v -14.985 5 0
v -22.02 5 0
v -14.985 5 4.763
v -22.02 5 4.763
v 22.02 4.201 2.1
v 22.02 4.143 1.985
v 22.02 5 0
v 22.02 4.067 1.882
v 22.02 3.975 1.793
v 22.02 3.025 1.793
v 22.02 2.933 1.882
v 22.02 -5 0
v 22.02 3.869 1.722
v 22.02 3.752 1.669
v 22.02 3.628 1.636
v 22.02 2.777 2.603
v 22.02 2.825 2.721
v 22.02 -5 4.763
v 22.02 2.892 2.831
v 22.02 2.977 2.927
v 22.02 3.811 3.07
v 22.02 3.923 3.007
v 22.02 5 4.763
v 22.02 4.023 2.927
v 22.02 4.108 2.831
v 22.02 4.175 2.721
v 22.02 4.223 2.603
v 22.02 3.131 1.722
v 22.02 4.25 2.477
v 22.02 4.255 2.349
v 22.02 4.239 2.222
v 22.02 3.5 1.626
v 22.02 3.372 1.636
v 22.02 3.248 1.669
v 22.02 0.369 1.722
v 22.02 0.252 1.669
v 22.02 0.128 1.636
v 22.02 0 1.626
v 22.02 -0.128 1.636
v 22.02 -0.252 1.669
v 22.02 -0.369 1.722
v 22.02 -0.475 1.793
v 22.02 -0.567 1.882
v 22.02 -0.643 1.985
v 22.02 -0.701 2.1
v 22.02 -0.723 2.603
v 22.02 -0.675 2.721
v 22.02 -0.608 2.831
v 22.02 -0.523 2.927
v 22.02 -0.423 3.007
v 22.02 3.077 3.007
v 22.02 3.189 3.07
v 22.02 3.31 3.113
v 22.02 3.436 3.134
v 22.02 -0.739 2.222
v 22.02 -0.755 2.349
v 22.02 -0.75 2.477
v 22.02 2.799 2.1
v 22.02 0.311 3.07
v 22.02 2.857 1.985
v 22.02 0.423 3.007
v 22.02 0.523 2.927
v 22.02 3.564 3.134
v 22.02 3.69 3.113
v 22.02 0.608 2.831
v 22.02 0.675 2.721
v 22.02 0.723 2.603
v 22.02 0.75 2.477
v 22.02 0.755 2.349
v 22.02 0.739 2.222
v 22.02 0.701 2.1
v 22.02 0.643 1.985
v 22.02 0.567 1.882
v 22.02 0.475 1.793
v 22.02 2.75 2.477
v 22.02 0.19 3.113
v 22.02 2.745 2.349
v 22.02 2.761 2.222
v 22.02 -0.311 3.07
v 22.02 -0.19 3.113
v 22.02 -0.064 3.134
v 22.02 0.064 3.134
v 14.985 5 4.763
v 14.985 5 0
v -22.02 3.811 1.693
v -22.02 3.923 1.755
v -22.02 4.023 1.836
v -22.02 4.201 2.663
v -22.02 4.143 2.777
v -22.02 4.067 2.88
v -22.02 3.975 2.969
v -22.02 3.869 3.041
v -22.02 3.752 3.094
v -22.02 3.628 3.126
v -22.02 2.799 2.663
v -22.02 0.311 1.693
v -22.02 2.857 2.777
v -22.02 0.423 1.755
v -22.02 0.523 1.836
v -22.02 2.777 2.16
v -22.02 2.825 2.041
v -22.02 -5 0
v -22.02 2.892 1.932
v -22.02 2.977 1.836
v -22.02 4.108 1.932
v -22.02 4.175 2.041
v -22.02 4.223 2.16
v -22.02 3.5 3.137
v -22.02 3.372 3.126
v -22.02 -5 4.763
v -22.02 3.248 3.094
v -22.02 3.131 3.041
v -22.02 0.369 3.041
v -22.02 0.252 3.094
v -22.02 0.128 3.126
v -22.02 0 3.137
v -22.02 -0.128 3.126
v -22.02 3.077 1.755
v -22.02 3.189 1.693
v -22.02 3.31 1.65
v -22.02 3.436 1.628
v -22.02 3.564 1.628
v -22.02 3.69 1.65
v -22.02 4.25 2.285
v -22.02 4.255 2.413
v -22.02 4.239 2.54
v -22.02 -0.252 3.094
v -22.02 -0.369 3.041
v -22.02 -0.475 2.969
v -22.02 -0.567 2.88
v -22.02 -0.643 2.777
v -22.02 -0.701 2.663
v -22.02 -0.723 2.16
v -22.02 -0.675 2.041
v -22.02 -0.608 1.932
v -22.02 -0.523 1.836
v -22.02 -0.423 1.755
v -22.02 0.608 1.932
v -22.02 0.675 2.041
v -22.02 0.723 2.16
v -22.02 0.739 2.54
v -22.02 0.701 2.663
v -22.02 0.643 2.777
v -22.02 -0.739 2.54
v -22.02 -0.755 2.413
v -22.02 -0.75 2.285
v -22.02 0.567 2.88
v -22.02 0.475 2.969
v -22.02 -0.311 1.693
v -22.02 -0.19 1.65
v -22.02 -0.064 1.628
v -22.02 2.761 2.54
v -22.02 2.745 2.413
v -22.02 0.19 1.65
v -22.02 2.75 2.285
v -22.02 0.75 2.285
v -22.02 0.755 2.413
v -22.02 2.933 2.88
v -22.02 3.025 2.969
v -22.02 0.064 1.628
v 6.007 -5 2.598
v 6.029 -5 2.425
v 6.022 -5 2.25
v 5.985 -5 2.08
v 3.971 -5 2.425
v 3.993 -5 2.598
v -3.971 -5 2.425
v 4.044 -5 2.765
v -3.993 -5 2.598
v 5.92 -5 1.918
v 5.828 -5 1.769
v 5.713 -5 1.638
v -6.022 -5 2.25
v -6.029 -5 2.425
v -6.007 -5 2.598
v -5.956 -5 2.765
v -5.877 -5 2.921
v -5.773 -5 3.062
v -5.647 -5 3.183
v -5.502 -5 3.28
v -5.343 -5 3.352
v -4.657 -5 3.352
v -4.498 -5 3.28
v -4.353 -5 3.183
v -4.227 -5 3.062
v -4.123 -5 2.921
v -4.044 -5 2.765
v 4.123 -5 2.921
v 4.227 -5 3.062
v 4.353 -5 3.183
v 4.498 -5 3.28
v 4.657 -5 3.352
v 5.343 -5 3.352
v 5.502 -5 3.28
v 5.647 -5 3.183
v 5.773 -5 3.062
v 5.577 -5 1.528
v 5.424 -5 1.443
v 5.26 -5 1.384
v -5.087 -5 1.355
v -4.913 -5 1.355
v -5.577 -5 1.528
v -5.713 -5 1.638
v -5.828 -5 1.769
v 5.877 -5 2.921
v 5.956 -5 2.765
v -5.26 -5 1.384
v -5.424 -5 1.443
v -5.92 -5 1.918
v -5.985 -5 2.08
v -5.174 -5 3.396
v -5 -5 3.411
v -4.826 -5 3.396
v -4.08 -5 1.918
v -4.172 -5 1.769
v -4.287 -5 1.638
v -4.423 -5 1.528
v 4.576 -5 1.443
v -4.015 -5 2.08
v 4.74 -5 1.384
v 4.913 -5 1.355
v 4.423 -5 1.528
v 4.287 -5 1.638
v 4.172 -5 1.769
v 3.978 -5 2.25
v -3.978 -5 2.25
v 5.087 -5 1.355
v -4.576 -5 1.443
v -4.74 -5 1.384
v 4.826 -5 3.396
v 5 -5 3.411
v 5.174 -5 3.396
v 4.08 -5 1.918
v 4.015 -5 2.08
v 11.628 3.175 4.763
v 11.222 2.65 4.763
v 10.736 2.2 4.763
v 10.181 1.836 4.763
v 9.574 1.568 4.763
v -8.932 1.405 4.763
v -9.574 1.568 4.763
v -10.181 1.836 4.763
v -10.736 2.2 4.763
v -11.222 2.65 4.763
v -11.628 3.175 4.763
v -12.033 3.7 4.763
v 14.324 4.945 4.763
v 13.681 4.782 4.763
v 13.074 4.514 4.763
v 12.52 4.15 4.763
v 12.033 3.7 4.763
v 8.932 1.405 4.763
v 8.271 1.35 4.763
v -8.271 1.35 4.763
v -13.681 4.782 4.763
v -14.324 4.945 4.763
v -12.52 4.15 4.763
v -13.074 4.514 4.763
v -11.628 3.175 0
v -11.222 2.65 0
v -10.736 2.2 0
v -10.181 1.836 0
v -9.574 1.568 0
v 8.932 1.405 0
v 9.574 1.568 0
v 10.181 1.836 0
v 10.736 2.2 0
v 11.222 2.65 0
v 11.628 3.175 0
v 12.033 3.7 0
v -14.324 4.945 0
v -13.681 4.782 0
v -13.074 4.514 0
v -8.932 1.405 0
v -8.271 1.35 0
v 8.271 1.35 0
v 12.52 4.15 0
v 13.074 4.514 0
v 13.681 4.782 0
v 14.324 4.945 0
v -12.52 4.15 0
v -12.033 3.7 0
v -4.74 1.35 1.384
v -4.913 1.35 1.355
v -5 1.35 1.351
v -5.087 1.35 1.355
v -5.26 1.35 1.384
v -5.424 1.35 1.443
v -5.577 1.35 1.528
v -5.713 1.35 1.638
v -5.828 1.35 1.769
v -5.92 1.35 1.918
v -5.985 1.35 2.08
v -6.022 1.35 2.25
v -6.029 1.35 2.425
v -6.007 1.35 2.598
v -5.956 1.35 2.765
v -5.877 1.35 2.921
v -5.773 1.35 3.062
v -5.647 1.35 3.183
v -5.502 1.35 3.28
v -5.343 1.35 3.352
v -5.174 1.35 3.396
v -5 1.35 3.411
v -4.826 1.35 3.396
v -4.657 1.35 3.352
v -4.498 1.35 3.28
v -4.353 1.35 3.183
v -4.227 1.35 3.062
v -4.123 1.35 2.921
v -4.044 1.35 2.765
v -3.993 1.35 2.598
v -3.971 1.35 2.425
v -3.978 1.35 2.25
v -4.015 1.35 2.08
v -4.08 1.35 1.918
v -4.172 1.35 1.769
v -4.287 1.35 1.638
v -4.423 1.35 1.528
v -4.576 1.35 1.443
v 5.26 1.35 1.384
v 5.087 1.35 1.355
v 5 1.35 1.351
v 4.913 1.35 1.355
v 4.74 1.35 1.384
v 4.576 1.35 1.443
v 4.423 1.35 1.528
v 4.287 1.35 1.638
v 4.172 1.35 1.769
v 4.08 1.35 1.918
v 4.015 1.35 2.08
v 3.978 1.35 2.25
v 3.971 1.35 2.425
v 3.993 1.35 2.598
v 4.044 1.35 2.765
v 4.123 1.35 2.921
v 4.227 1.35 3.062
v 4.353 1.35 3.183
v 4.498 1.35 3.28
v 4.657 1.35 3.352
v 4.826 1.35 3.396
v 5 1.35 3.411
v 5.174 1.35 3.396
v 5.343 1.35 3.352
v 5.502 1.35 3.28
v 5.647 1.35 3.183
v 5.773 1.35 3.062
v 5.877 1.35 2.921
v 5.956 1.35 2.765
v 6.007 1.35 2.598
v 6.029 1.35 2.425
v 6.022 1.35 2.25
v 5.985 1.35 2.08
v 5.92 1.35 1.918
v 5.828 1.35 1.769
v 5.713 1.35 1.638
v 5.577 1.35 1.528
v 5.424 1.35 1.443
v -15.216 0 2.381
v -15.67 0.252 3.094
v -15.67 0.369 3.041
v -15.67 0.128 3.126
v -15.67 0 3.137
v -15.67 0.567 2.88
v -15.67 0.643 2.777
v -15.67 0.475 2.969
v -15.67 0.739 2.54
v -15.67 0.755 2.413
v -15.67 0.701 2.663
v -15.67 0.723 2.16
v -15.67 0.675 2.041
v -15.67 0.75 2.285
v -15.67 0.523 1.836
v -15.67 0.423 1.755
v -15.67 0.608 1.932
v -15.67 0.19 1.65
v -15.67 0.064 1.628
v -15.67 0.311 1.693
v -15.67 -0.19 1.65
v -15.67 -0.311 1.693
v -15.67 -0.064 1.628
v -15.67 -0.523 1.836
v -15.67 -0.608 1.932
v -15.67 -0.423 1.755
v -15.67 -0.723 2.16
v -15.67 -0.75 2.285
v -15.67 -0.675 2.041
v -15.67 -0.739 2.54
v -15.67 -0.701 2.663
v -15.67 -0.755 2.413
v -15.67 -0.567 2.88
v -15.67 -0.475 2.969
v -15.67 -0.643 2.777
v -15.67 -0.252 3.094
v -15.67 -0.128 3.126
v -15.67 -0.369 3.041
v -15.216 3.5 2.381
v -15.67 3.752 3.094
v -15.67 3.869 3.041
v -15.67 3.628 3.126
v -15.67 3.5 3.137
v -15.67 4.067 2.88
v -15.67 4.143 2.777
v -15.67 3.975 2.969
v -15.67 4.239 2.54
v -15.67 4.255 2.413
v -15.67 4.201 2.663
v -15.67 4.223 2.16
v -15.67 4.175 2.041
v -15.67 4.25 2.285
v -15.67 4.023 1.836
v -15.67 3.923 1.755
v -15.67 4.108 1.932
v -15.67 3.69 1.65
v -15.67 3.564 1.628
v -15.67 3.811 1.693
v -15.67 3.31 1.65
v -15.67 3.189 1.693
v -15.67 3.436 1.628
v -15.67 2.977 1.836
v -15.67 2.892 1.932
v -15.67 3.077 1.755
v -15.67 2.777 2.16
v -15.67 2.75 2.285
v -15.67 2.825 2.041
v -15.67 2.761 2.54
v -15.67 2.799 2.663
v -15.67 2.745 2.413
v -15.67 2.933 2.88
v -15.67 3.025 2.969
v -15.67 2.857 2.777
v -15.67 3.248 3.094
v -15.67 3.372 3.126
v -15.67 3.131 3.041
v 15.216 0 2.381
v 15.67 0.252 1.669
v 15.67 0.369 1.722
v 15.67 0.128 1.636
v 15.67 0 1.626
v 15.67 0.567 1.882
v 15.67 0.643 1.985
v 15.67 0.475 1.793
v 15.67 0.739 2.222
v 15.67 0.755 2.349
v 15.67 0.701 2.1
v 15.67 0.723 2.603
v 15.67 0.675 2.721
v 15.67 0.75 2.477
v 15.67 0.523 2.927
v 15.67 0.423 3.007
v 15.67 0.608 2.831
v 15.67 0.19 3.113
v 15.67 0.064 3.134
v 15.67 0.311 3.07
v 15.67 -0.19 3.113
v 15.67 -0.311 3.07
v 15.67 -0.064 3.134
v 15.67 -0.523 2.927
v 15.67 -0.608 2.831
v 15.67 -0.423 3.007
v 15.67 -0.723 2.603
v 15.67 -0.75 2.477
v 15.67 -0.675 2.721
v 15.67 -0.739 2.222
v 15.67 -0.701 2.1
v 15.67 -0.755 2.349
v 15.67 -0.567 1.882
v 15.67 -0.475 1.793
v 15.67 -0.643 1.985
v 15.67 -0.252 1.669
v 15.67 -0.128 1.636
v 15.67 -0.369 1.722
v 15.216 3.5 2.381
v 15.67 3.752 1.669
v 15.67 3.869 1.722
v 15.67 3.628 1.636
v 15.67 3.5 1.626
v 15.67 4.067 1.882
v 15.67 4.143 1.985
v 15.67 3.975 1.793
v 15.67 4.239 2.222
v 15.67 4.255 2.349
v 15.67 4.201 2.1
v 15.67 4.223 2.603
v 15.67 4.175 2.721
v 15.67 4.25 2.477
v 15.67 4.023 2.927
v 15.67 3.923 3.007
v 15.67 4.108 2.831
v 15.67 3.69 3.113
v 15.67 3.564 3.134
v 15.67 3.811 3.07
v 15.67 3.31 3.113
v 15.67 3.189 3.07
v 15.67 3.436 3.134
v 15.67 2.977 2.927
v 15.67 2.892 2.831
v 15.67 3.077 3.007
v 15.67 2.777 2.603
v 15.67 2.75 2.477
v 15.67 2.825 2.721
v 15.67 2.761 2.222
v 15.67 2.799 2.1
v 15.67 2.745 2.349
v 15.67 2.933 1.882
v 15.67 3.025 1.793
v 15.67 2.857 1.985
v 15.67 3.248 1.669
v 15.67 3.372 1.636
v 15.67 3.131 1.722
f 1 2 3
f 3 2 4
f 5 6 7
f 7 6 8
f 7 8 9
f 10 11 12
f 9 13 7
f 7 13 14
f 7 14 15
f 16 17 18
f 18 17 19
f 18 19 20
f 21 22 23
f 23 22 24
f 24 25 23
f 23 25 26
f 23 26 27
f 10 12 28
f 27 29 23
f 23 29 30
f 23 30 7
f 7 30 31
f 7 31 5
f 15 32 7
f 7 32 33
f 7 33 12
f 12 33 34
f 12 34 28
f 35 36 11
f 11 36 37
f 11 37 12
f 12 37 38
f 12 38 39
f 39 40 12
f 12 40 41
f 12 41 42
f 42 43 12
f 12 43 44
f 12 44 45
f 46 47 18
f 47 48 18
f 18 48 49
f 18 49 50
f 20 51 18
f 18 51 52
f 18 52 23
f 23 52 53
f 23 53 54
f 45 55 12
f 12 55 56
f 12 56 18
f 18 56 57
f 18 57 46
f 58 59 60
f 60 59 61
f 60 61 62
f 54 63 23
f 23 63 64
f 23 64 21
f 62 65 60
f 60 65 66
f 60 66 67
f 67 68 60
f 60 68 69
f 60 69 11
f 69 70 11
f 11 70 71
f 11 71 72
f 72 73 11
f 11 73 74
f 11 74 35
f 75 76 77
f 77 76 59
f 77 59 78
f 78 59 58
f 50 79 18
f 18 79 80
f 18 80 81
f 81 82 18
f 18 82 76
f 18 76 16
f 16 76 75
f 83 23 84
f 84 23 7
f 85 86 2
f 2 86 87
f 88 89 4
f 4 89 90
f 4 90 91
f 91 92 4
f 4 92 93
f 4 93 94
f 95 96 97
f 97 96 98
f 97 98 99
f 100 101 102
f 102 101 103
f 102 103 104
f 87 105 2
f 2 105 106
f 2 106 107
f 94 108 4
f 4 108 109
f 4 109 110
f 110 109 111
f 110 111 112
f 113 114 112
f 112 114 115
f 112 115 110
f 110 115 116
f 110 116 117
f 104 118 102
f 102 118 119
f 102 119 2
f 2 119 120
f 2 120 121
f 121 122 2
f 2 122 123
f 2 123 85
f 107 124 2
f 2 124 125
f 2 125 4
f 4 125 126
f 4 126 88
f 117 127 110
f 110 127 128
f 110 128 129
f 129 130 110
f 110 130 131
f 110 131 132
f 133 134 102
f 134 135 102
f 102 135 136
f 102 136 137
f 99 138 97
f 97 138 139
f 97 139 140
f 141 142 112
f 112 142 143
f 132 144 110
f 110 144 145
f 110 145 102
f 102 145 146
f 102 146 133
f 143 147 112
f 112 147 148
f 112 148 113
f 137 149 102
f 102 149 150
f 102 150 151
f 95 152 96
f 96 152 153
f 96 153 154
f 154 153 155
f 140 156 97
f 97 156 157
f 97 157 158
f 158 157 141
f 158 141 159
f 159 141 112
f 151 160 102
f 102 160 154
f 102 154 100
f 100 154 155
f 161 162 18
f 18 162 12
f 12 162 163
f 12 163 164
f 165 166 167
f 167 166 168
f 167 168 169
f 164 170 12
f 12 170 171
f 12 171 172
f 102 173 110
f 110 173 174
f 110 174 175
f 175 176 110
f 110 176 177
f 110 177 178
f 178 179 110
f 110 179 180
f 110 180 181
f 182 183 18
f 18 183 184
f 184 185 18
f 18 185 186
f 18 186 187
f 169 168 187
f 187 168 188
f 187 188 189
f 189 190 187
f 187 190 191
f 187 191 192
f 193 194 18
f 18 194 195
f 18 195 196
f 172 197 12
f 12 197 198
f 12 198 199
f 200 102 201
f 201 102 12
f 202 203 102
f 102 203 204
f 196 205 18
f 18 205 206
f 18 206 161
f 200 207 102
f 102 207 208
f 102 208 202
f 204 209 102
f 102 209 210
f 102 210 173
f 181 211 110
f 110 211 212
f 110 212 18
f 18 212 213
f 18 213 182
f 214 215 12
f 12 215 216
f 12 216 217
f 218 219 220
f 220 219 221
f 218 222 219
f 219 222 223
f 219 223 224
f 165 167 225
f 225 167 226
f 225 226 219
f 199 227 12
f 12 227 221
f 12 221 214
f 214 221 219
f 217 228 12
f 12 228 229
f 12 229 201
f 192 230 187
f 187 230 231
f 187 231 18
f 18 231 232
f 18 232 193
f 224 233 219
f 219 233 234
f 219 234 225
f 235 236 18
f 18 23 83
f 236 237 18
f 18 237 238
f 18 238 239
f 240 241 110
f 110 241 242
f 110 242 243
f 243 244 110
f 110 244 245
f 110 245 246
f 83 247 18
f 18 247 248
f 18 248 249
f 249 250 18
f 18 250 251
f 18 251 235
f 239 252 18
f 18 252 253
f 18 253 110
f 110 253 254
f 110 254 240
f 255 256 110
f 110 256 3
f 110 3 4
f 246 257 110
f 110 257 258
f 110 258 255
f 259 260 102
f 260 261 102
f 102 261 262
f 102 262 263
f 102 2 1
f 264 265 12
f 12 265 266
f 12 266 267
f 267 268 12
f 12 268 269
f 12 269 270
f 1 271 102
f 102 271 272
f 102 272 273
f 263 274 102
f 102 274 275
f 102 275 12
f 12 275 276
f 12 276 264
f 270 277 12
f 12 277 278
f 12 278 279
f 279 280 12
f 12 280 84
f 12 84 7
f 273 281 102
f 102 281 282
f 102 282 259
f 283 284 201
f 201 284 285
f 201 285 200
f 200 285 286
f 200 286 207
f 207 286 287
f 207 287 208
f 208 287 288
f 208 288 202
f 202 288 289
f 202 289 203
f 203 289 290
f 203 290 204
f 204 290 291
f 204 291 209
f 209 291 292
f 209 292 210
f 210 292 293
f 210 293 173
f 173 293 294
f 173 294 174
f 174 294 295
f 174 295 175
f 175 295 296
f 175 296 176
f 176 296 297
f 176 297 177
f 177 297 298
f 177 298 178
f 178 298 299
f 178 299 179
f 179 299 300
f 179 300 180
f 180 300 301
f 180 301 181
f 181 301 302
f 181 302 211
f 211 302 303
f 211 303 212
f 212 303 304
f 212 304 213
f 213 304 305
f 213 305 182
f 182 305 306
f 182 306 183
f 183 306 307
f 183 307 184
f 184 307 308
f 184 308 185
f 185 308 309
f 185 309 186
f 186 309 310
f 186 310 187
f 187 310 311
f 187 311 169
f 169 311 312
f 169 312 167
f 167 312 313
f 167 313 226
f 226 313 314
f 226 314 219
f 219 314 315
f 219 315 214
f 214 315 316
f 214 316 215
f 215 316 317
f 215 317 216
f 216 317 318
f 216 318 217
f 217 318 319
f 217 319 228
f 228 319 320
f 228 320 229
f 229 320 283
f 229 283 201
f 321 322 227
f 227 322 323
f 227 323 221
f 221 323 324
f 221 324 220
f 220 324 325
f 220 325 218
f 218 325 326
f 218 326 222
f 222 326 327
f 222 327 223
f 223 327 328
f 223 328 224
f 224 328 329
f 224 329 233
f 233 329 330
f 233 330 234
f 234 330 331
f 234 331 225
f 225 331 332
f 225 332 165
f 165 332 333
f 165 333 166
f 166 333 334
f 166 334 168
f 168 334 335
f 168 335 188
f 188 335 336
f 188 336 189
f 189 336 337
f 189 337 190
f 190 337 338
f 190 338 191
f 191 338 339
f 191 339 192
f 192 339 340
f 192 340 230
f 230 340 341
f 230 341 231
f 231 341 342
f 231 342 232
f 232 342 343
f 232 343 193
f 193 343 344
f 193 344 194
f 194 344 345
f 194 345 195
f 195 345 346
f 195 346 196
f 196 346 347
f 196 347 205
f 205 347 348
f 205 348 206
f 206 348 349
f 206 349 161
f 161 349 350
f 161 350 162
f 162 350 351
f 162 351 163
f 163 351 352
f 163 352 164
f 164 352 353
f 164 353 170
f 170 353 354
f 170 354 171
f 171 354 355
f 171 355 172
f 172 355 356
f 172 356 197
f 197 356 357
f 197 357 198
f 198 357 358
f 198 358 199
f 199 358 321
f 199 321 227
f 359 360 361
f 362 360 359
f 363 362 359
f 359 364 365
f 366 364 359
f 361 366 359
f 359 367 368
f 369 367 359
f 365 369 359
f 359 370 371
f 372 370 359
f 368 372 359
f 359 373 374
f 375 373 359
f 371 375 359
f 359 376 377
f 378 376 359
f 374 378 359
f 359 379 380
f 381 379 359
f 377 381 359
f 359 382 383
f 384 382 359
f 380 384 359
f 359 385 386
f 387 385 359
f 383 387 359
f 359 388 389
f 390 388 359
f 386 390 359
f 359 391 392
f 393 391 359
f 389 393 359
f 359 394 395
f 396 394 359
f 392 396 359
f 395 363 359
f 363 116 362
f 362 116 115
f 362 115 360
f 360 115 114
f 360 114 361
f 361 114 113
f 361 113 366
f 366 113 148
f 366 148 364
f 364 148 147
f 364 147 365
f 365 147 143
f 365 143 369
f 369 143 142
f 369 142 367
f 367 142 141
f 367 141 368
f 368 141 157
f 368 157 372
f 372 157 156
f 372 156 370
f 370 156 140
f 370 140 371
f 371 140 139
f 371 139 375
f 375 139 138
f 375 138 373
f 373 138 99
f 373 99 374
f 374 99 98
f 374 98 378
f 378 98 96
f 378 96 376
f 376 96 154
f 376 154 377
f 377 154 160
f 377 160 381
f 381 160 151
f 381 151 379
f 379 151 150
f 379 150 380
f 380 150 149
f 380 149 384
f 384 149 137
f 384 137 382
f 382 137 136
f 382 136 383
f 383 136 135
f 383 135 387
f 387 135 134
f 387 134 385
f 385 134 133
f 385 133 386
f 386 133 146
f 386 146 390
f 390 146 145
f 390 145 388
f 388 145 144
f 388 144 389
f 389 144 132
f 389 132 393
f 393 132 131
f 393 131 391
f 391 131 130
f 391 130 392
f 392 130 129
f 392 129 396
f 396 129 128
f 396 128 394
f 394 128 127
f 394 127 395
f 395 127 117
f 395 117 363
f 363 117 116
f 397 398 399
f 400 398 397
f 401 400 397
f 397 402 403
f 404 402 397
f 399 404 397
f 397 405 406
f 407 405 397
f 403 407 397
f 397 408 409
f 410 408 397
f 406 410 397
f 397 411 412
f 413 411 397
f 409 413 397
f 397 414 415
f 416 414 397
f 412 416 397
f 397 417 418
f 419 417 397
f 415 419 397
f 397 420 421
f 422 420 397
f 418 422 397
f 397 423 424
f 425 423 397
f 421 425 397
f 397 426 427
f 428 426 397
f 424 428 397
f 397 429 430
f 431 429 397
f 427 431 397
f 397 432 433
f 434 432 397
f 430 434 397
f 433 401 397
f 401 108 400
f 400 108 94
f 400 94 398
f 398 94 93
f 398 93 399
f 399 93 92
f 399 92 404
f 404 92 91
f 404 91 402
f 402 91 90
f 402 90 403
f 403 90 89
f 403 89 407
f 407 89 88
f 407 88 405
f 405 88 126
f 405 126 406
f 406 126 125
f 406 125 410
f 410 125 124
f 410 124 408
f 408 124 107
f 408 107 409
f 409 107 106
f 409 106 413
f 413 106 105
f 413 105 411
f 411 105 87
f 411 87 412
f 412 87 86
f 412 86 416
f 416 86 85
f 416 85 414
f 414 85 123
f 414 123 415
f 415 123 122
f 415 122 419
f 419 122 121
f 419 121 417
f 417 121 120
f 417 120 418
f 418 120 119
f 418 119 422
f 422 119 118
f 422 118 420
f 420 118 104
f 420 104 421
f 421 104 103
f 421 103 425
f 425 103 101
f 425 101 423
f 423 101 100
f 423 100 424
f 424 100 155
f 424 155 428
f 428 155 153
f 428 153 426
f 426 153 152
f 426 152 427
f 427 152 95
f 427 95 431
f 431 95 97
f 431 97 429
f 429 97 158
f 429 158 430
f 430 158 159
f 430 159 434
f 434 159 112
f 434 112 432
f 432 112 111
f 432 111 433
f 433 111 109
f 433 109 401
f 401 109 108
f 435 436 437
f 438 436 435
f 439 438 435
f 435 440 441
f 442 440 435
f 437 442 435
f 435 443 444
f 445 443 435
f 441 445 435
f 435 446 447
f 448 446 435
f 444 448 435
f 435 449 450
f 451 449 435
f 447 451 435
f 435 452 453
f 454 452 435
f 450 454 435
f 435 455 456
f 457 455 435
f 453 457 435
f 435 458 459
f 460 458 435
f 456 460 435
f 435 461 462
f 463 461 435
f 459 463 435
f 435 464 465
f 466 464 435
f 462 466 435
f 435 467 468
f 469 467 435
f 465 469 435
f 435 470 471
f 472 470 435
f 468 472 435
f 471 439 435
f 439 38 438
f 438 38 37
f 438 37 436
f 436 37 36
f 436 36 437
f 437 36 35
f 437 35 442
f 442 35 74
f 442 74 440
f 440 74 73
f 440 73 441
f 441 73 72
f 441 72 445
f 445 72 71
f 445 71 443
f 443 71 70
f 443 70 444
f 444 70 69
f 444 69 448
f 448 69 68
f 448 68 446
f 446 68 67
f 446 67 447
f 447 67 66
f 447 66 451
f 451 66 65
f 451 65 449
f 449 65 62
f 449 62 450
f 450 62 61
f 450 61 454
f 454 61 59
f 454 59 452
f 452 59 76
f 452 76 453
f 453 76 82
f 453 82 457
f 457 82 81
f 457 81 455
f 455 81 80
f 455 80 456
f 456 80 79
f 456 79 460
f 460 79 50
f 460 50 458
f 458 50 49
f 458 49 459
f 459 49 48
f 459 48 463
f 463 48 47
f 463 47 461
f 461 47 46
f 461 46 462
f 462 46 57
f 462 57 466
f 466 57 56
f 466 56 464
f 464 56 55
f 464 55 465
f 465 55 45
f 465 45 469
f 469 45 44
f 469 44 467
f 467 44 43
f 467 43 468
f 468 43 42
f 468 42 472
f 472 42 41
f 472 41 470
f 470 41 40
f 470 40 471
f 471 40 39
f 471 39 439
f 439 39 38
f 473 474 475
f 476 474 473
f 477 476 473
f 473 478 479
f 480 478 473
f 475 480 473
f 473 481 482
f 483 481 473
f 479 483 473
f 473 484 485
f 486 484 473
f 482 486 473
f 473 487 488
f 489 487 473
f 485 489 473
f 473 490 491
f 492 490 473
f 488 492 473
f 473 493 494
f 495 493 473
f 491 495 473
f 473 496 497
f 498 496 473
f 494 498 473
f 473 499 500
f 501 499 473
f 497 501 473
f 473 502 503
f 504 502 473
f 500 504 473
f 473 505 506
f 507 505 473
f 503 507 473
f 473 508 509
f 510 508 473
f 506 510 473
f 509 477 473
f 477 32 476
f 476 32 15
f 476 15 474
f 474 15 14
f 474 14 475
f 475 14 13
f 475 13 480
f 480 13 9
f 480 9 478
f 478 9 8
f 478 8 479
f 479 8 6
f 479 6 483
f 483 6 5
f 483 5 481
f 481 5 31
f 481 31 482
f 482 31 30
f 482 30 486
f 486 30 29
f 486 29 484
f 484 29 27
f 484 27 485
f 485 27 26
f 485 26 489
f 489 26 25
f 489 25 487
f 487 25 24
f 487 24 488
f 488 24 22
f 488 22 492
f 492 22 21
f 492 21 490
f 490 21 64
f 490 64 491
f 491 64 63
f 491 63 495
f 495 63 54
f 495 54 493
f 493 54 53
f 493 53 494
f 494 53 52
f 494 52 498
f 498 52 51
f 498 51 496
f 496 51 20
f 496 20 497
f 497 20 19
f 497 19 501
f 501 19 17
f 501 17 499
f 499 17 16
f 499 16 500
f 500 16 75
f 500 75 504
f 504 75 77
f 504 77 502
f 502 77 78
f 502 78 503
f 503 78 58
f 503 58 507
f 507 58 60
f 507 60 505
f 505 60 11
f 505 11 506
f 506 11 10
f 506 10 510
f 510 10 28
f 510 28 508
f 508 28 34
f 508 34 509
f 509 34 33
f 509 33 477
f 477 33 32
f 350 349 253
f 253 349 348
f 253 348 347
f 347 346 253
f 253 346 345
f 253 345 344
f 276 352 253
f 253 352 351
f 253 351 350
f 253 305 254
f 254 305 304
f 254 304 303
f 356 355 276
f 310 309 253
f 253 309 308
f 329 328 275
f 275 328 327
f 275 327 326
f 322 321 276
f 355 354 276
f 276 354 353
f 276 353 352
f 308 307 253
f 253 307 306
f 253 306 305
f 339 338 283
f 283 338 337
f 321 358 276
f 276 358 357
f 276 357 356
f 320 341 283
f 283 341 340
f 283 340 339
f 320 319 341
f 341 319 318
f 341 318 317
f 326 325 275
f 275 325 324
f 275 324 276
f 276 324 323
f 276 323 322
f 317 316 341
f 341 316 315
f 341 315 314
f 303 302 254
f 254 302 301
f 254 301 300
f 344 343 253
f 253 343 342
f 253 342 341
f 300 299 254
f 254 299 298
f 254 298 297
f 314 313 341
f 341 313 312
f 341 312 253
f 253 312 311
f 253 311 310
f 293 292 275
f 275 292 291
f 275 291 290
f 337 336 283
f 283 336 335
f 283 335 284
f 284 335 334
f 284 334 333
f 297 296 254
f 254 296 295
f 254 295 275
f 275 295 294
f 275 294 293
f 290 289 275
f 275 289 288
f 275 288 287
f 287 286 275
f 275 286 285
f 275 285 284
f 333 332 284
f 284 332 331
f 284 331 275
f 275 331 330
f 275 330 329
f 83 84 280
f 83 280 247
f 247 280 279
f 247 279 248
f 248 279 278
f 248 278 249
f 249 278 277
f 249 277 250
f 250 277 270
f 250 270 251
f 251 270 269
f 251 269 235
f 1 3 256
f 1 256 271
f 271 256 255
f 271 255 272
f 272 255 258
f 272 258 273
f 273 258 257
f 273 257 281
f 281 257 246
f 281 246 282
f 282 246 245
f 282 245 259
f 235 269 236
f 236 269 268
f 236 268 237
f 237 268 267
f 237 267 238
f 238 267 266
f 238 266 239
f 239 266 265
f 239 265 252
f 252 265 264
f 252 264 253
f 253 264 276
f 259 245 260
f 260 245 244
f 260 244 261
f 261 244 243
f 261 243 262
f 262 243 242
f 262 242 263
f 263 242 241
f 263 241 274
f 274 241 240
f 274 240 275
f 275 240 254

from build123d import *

# Parameters (mm, degrees)
SKETCH1_W                 = 44.04
SKETCH1_H                 = 10
BOSS_EXTRUDE1_DEPTH       = 4.7625
SKETCH2_R                 = 1.03
CUT_EXTRUDE1_DEPTH        = 25.648768859
F_1_64_TAPPED_HOLE1_D     = 1.5113
F_1_64_TAPPED_HOLE1_DEPTH = 6.35
F_1_64_TAPPED_HOLE1_TIP   = 0.454040327
F_1_64_TAPPED_HOLE2_D     = 1.5113
F_1_64_TAPPED_HOLE2_DEPTH = 6.35
F_1_64_TAPPED_HOLE2_TIP   = 0.454040327
SKETCH7_W                 = 22
SKETCH7_H                 = 3.65
CUT_EXTRUDE2_DEPTH        = 10
FILLET1_R                 = 4
FILLET2_R                 = 4


with BuildPart() as part:
    # Sketch1 → Boss-Extrude1 (new body)
    with BuildSketch(Plane.XY):
        Rectangle(SKETCH1_W, SKETCH1_H)
    extrude(amount=BOSS_EXTRUDE1_DEPTH)

    # Sketch2 → Cut-Extrude1 (cut, through all)
    with BuildSketch(Plane(origin=(0, 5, 0), x_dir=(1, 0, 0), z_dir=(0, 1, 0))):
        with Locations(Location((-5, -2.38125, 0), (0, 0, 270))):
            Circle(SKETCH2_R)
        with Locations(Location((5, -2.38125, 0), (0, 0, 270))):
            Circle(SKETCH2_R)
    extrude(amount=-CUT_EXTRUDE1_DEPTH, mode=Mode.SUBTRACT)

    # #1-64 Tapped Hole1
    with Locations(Plane.ZY.offset(22.02)):
        with Locations((2.38125, 3.5), (2.38125, 0)):
            Hole(F_1_64_TAPPED_HOLE1_D / 2, depth=F_1_64_TAPPED_HOLE1_DEPTH)
            with Locations((0, 0, -(F_1_64_TAPPED_HOLE1_DEPTH + F_1_64_TAPPED_HOLE1_TIP / 2))):  # 118° drill point
                Cone(0, F_1_64_TAPPED_HOLE1_D / 2, F_1_64_TAPPED_HOLE1_TIP, mode=Mode.SUBTRACT)

    # #1-64 Tapped Hole2
    with Locations(Plane(origin=(22.02, 0, 0), x_dir=(0, 0, -1), z_dir=(1, 0, 0))):
        with Locations((-2.38125, 3.5), (-2.38125, 0)):
            Hole(F_1_64_TAPPED_HOLE2_D / 2, depth=F_1_64_TAPPED_HOLE2_DEPTH)
            with Locations((0, 0, -(F_1_64_TAPPED_HOLE2_DEPTH + F_1_64_TAPPED_HOLE2_TIP / 2))):  # 118° drill point
                Cone(0, F_1_64_TAPPED_HOLE2_D / 2, F_1_64_TAPPED_HOLE2_TIP, mode=Mode.SUBTRACT)

    # Sketch7 → Cut-Extrude2 (cut)
    with BuildSketch(Plane.XY.offset(4.7625)):
        with Locations((0, 3.175)):
            Rectangle(SKETCH7_W, SKETCH7_H)
    extrude(amount=-CUT_EXTRUDE2_DEPTH, mode=Mode.SUBTRACT)

    # Fillet1
    # the kernel refuses this fillet: 4 mm, written as the material it takes off along each edge
    with BuildSketch(Plane(origin=(11, 5, 14.724145195), x_dir=(0, -1, 0), z_dir=(0, 0, -1))) as fillet1_piece_1:
        with BuildLine():
            CenterArc((4, -3.984658078), FILLET1_R, 95.019800132, 84.980199868)
            Line((0, -3.984658078), (-0.08, -3.984658078))
            Line((-0.08, -3.984658078), (-0.08, 0))
            Line((-0.08, 0), (0, 0.08))
            ThreePointArc((0, 0.08), (1.825, 0.08), (3.643, 0.079693162))
            Line((3.643, 0.079693162), (3.65, 0))
        make_face()
    extrude(amount=24.685790391, mode=Mode.SUBTRACT)
    with BuildSketch(Plane(origin=(-11, 5, 14.724145195), x_dir=(-1, 0, 0), z_dir=(0, 0, -1))) as fillet1_piece_2:
        with BuildLine():
            CenterArc((3.984658078, -4), FILLET1_R, 90, 84.980199868)
            Line((0, -3.65), (-0.079693162, -3.643))
            ThreePointArc((-0.079693162, -3.643), (-0.08, -1.825), (-0.08, 0))
            Line((-0.08, 0), (0, 0.08))
            Line((0, 0.08), (3.984658078, 0.08))
            Line((3.984658078, 0.08), (3.984658078, 0))
        make_face()
    extrude(amount=24.685790391, mode=Mode.SUBTRACT)

    # Fillet2
    fillet2_edges = [part.edges().sort_by_distance(p)[0] for p in [
        (11, 1.35, 2.38125),
        (-11, 1.35, 2.38125),
    ]]
    fillet(fillet2_edges, radius=FILLET2_R)


solid = part.part
